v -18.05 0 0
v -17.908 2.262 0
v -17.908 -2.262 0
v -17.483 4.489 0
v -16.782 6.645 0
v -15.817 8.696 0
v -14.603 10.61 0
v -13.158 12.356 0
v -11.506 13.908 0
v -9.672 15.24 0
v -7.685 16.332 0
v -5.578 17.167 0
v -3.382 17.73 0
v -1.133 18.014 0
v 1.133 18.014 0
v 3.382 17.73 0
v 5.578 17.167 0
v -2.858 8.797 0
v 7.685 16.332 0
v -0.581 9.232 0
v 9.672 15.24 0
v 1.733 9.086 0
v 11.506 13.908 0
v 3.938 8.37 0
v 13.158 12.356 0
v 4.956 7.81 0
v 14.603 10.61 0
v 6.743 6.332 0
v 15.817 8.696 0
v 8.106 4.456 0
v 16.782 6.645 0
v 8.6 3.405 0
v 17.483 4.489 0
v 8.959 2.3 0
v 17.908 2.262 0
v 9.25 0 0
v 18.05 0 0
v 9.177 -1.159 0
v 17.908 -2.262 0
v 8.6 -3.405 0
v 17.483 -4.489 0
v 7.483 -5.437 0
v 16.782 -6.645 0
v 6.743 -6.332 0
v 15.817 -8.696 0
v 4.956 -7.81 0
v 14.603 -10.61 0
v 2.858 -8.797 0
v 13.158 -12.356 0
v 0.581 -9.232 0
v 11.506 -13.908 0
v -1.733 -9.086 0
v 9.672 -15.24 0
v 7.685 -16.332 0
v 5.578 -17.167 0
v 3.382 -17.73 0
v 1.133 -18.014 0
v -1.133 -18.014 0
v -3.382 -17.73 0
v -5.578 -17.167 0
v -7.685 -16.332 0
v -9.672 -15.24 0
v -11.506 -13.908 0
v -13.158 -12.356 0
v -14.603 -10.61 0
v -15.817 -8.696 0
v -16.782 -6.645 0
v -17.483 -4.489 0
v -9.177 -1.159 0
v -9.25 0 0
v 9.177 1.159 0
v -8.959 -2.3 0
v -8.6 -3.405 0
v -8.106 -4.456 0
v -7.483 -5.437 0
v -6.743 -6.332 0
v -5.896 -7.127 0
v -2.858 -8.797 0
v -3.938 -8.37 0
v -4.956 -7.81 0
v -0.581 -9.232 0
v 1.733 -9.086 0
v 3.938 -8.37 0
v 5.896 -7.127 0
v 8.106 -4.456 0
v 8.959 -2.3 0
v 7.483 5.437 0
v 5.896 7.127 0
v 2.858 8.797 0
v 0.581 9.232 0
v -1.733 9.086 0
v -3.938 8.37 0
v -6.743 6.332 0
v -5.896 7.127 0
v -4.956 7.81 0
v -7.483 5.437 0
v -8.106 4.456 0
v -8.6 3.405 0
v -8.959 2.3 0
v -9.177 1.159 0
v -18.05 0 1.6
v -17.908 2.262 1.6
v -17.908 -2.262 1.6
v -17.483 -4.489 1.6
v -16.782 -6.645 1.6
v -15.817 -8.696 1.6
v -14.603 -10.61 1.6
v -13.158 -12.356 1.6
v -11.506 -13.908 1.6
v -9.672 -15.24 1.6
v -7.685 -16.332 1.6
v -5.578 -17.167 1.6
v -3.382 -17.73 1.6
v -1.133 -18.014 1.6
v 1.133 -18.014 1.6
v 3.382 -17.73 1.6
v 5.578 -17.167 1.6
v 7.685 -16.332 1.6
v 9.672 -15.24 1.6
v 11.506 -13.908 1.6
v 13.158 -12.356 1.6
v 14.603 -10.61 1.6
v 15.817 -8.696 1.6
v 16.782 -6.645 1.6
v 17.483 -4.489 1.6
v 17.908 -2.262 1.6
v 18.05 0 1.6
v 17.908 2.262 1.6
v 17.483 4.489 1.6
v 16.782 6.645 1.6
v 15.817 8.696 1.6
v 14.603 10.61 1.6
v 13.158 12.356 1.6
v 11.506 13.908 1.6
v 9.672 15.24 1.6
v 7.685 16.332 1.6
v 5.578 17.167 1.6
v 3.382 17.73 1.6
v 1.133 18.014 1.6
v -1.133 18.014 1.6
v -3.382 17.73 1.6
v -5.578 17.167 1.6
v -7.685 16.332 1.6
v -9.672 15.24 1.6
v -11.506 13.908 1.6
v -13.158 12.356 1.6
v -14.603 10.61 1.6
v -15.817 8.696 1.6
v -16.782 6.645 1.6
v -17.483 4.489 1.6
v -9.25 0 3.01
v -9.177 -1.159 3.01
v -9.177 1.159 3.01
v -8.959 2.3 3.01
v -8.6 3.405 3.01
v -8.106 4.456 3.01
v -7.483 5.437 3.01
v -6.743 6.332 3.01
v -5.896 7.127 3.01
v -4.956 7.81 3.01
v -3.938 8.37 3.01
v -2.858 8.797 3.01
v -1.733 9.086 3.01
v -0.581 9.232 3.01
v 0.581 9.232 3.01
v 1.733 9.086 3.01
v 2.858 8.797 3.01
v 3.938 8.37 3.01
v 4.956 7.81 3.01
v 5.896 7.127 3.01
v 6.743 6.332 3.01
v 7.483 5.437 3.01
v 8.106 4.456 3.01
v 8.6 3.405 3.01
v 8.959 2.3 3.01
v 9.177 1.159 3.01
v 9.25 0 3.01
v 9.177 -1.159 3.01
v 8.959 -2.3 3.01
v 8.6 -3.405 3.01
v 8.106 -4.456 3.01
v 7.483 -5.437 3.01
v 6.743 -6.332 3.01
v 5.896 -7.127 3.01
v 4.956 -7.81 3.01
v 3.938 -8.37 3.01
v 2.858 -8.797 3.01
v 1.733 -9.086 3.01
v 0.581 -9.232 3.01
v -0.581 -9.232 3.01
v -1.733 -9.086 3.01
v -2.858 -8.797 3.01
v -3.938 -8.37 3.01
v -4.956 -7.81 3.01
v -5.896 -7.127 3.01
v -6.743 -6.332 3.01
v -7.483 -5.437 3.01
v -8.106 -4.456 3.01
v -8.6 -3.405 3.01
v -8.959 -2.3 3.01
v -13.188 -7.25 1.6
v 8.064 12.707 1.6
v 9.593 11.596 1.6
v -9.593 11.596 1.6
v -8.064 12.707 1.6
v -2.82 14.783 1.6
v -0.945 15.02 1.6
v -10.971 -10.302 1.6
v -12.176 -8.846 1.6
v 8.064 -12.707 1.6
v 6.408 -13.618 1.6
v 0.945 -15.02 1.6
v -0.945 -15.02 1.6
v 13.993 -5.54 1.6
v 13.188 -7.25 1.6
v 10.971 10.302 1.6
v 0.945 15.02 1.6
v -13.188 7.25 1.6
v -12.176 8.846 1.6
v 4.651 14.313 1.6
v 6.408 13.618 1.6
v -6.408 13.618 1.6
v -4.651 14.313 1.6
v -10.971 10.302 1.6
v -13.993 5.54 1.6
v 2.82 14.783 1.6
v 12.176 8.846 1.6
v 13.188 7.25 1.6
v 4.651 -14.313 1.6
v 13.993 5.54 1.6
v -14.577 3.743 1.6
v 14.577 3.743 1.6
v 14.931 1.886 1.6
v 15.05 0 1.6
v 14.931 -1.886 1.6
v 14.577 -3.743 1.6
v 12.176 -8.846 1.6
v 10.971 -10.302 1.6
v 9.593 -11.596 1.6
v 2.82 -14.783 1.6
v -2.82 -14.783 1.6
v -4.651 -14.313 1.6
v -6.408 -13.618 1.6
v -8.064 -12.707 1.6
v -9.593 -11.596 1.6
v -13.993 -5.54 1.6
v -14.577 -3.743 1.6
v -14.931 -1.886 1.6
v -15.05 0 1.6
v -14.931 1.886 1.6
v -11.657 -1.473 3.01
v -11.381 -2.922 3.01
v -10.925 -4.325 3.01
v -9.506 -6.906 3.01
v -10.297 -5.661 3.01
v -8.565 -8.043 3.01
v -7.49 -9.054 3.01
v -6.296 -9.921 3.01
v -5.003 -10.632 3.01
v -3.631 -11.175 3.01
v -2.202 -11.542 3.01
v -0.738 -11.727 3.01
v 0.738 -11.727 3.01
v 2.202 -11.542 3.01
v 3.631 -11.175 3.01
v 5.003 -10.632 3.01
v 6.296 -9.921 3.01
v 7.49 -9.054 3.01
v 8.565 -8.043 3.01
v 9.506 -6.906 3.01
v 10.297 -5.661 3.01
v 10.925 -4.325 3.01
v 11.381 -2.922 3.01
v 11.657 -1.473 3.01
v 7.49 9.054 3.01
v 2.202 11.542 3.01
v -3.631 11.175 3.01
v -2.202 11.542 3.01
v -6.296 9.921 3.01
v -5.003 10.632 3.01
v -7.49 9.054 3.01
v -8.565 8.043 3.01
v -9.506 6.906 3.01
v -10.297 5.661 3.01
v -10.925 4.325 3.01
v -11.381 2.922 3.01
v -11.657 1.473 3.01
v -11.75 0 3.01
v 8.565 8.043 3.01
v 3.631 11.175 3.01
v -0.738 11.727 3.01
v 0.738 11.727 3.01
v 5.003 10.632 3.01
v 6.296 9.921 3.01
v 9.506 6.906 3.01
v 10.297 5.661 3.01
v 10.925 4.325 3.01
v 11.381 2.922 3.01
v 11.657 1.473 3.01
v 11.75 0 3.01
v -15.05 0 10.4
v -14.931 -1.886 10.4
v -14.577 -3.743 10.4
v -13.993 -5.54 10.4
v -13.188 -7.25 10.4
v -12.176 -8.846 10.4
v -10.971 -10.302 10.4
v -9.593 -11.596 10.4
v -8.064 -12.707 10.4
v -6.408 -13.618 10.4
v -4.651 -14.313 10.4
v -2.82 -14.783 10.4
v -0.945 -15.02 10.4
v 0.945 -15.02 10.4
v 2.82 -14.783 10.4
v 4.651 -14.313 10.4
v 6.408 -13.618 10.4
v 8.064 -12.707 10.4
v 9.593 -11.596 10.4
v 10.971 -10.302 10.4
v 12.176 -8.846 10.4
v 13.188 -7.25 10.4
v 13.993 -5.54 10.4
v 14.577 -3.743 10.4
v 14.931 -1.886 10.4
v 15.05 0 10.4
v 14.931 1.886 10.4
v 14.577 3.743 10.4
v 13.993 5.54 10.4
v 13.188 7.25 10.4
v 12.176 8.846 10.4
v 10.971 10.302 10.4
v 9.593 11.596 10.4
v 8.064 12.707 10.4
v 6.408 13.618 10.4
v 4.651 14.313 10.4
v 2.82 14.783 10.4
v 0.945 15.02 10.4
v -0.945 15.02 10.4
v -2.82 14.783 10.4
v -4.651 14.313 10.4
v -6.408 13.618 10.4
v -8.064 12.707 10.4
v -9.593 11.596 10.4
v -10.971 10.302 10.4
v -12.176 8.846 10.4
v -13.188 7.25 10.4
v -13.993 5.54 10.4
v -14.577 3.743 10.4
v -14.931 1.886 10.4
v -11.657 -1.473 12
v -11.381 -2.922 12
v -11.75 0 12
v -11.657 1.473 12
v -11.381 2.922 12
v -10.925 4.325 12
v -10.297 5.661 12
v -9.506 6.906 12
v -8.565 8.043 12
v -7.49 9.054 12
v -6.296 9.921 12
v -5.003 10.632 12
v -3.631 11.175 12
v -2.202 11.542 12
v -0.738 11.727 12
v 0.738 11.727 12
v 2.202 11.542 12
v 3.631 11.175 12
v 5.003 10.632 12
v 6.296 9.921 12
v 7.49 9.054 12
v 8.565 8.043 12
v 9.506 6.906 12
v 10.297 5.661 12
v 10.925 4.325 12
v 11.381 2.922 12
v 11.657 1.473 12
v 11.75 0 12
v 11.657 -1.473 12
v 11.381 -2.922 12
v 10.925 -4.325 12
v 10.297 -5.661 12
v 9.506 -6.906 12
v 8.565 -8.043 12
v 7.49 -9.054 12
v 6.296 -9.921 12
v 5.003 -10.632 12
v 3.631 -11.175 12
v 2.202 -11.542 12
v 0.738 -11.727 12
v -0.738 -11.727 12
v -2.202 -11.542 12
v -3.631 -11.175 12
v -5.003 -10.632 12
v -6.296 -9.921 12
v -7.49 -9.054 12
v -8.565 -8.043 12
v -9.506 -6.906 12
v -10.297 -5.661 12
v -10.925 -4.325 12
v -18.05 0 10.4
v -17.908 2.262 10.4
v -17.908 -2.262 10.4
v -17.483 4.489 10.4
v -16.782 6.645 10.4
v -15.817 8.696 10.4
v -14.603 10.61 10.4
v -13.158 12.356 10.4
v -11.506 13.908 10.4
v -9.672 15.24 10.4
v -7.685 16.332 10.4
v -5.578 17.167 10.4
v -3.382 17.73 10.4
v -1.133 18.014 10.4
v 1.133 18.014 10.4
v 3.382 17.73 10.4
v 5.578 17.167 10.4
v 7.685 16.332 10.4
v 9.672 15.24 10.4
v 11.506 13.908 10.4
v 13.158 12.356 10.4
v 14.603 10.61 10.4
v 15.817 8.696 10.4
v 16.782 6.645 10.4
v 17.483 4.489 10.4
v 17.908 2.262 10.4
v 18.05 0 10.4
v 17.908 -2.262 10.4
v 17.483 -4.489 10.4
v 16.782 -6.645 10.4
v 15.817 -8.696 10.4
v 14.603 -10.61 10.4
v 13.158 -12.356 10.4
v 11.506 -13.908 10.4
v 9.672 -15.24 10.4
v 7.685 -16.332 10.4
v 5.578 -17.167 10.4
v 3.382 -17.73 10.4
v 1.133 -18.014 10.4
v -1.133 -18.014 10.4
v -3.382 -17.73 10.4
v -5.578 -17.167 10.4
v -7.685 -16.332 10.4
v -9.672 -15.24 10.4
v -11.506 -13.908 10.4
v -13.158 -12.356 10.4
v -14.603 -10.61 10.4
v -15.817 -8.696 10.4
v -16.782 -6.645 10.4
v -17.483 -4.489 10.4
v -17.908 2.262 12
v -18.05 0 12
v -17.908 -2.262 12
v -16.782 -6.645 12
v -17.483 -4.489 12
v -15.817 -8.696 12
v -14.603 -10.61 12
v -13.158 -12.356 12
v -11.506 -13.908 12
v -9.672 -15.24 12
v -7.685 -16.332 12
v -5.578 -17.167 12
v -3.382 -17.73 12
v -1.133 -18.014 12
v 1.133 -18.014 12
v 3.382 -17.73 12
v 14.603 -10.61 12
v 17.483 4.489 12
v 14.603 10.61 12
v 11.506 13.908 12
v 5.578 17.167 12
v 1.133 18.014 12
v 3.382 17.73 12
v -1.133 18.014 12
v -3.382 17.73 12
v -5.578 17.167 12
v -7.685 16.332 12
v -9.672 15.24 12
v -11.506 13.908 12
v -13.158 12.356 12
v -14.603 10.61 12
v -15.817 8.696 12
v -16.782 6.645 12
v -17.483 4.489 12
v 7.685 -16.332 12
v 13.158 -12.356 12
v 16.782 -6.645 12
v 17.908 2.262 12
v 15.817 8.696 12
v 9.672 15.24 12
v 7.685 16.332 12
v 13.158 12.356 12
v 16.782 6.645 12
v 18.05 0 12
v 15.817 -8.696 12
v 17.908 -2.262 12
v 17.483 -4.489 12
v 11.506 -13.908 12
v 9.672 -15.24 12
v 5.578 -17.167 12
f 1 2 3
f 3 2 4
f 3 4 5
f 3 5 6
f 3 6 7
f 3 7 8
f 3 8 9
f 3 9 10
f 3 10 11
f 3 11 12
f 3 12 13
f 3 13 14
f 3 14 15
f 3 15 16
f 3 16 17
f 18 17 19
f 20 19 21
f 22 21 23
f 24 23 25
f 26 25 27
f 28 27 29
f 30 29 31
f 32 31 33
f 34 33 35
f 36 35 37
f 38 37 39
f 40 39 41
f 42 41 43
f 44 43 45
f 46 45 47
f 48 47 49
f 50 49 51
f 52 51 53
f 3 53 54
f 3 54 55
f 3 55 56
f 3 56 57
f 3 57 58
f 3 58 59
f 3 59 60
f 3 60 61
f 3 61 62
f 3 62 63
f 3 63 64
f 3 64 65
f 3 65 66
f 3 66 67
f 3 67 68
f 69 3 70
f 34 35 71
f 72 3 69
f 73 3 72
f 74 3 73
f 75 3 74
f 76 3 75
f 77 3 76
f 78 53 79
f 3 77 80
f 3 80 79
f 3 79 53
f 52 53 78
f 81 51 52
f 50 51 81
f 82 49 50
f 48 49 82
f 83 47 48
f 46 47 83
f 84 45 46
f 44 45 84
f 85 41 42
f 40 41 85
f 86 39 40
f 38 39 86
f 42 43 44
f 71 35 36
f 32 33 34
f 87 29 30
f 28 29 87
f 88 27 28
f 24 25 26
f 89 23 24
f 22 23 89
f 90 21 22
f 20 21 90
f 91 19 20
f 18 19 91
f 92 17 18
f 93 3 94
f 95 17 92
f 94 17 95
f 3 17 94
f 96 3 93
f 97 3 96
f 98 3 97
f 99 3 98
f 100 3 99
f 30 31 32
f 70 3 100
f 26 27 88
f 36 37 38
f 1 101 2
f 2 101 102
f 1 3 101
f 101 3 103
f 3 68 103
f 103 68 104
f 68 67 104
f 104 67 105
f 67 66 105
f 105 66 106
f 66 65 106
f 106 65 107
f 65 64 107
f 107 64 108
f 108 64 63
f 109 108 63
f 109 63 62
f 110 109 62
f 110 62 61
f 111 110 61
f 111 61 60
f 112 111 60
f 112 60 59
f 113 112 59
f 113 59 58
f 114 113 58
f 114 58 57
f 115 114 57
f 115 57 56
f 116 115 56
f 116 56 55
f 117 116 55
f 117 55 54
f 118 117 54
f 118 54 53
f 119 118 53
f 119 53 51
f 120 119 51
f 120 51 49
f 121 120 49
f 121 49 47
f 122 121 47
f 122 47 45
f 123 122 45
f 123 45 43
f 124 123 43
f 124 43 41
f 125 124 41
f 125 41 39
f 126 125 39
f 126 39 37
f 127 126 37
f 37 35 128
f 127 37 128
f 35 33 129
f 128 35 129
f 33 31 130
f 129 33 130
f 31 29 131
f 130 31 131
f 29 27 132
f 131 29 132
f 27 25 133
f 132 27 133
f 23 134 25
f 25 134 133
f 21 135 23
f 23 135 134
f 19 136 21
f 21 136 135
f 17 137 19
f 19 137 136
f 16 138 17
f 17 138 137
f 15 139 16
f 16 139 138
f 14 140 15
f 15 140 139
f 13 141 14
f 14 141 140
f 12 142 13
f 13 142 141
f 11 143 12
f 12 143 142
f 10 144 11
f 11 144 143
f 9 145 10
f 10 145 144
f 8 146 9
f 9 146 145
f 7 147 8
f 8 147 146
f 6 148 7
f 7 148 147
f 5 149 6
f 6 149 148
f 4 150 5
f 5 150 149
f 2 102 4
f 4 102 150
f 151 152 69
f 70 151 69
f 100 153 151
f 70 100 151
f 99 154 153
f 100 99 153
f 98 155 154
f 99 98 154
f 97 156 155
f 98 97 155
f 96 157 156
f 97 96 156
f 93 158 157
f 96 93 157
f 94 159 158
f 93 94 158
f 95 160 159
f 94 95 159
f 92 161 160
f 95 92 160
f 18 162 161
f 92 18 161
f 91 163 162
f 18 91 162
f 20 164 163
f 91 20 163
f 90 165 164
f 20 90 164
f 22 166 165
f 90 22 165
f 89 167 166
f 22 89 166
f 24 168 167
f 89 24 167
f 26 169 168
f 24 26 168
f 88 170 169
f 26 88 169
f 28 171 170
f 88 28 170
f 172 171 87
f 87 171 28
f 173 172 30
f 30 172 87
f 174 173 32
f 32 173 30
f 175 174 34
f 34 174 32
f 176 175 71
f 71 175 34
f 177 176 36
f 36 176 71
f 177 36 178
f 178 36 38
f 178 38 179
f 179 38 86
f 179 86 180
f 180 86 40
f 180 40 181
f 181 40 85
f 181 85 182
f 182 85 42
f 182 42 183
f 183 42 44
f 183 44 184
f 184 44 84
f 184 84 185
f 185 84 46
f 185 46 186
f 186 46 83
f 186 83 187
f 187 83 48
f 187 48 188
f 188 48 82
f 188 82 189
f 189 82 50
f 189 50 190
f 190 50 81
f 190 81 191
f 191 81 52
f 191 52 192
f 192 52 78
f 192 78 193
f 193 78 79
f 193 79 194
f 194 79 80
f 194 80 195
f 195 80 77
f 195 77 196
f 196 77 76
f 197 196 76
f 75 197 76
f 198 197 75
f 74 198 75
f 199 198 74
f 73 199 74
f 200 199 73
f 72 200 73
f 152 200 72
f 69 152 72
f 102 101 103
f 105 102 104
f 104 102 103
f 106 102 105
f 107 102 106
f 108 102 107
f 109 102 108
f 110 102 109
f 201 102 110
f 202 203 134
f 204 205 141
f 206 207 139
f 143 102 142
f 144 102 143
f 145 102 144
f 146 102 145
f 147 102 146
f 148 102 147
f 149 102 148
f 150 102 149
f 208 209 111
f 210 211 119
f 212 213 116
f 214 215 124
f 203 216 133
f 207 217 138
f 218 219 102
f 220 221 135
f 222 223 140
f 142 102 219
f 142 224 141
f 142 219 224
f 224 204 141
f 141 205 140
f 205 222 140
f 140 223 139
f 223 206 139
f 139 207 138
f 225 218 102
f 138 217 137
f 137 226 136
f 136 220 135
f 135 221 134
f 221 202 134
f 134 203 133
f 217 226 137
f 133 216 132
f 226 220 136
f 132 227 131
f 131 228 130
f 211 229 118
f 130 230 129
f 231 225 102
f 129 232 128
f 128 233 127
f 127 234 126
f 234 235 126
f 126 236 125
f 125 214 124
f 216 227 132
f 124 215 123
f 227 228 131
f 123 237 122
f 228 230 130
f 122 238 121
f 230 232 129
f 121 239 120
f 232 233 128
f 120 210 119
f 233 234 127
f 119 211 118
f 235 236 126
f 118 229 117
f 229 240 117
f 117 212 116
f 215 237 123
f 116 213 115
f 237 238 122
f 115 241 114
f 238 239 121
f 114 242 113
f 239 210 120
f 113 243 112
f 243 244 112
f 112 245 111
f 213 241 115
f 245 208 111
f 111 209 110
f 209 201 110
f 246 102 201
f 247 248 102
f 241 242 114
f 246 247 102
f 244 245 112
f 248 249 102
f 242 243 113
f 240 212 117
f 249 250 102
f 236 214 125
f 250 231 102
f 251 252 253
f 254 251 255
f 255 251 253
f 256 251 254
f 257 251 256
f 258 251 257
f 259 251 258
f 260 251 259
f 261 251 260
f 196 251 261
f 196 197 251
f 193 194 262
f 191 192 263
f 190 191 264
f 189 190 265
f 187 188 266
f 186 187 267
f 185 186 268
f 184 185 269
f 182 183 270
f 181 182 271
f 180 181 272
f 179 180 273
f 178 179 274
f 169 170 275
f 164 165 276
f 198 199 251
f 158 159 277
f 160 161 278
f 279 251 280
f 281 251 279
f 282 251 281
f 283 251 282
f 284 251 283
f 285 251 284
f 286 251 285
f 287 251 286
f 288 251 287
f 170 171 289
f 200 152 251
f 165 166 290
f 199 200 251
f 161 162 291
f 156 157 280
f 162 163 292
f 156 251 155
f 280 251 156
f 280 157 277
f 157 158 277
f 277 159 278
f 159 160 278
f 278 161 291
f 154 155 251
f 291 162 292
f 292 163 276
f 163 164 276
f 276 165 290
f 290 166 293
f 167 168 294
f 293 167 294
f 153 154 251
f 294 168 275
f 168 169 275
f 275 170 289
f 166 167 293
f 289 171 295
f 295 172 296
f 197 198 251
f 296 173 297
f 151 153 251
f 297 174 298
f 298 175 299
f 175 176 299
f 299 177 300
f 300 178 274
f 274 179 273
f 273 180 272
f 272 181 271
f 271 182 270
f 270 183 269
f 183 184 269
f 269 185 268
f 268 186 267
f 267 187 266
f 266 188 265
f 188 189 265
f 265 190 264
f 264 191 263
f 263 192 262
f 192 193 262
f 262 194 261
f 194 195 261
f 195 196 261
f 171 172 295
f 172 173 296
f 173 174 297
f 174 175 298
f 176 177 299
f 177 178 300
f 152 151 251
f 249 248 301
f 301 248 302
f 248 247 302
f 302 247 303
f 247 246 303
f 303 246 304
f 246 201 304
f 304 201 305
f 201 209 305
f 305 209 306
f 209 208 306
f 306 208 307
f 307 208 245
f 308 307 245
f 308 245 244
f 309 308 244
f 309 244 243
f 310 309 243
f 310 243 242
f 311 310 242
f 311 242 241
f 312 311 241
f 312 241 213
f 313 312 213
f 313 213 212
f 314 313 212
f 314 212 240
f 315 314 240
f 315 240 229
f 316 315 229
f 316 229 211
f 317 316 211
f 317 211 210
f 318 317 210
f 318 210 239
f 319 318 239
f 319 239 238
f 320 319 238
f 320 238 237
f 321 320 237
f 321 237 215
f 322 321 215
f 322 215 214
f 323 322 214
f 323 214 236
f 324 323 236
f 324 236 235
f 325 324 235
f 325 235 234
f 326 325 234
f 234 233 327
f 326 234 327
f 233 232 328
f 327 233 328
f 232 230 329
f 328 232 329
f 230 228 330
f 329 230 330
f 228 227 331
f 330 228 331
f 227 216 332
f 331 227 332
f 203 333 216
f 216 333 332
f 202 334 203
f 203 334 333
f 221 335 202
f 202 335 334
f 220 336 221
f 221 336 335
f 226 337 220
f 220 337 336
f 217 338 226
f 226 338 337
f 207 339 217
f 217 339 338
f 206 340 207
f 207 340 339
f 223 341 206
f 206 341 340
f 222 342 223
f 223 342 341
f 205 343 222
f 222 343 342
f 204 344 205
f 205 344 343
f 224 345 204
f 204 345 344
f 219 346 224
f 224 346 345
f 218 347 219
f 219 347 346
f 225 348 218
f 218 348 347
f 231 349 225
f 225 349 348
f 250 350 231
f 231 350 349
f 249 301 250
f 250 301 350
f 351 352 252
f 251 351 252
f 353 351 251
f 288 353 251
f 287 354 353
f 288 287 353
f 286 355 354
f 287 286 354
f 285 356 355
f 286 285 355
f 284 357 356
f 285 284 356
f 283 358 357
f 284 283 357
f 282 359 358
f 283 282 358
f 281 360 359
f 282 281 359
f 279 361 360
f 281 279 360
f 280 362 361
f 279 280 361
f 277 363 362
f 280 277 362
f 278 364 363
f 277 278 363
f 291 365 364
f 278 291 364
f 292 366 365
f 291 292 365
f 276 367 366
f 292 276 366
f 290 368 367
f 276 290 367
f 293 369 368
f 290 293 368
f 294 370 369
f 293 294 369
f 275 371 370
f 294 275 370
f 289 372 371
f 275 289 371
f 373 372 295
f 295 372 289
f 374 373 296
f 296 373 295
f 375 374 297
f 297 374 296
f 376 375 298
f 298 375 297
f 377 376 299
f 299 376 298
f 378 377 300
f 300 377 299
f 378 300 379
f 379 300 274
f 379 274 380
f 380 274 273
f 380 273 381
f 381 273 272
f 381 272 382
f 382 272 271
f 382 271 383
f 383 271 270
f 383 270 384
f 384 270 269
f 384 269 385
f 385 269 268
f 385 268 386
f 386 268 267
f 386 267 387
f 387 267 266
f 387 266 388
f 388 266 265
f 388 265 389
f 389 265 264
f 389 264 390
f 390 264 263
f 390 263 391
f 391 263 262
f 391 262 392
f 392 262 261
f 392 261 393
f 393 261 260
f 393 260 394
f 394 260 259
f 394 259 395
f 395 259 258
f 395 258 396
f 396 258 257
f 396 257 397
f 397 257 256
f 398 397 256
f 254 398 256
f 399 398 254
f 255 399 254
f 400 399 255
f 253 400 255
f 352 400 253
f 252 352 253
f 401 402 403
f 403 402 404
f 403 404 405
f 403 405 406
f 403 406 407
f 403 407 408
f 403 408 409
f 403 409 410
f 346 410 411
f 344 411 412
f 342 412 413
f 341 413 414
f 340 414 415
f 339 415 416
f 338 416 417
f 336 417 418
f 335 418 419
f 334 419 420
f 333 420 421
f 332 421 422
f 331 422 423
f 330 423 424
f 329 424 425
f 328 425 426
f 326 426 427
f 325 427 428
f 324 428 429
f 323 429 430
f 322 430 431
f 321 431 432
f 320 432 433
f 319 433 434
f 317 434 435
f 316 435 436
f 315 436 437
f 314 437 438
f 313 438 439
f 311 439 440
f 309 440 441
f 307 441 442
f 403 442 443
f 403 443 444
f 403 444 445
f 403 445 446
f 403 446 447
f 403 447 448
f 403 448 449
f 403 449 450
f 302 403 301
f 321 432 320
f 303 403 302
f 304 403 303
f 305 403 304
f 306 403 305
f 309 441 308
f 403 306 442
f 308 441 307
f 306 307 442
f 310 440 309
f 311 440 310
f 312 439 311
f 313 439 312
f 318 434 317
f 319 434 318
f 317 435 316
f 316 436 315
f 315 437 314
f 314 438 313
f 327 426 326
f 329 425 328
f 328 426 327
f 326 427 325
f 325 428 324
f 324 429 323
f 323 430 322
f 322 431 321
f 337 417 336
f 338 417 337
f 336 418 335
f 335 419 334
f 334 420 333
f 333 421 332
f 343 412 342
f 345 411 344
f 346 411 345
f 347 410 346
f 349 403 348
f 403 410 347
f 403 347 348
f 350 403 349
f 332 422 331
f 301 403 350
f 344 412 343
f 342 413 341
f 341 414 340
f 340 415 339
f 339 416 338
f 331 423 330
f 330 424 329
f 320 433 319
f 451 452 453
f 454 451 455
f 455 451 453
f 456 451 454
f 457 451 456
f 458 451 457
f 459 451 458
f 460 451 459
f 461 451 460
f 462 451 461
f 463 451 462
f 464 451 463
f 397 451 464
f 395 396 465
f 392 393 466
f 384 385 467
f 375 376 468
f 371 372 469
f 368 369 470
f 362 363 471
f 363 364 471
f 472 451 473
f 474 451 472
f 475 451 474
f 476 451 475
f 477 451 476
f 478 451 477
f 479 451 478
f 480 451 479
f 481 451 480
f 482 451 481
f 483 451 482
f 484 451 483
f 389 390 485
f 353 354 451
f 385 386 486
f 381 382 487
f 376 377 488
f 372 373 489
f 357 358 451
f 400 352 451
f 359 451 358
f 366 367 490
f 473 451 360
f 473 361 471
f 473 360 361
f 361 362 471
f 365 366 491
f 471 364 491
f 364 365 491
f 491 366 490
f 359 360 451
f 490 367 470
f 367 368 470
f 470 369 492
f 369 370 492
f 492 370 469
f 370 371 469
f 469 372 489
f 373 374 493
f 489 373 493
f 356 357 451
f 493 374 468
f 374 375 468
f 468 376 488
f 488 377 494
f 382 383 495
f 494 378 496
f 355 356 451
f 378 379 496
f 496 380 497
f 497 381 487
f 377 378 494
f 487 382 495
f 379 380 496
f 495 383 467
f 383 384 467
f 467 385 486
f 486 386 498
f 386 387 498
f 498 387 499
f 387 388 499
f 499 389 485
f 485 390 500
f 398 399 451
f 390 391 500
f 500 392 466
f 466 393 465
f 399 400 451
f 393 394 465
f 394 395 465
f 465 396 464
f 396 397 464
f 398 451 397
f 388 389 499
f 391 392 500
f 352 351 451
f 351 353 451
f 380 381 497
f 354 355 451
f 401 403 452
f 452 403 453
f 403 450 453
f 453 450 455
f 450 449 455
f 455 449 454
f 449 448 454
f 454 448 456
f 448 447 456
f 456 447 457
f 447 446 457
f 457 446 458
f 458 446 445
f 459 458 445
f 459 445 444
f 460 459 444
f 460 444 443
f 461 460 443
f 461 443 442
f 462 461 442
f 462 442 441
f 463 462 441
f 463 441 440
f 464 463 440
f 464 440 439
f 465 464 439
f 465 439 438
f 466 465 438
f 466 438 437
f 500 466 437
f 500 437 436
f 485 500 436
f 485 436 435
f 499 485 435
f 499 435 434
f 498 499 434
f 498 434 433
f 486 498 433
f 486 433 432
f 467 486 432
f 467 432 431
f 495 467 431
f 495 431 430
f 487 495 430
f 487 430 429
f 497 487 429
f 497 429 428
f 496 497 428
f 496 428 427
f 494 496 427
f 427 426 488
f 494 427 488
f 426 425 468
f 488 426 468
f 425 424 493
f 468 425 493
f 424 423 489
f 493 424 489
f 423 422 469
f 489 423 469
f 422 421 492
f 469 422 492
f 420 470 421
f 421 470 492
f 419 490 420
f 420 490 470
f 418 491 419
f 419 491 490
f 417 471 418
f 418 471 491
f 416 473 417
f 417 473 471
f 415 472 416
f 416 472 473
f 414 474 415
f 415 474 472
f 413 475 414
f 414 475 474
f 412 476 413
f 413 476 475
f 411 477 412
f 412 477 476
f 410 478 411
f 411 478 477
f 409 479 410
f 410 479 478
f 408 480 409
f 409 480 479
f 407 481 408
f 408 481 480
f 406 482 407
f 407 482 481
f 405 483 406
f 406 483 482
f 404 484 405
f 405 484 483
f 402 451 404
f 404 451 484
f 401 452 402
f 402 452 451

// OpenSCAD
// file: functions.scad
// PRUSA Mendel  
// Functions used in many files
// GNU GPL v2
// Josef Průša
// josefprusa@me.com
// prusadjs.cz
// http://www.reprap.org/wiki/Prusa_Mendel
// http://github.com/prusajr/PrusaMendel

module nut(d,h,horizontal=true){
cornerdiameter =  (d / 2) / cos (180 / 6);
cylinder(h = h, r = cornerdiameter, $fn = 6);
if(horizontal){
for(i = [1:6]){
	rotate([0,0,60*i]) translate([-cornerdiameter-0.2,0,0]) rotate([0,0,-45]) cube(size = [2,2,h]);
}}
}

// By nophead
module polyhole(d,h) {
    n = max(round(2 * d),3);
    rotate([0,0,180])
        cylinder(h = h, r = (d / 2) / cos (180 / n), $fn = n);
}

module roundcorner(diameter){
	difference(){
		cube(size = [diameter,diameter,99], center = false);
		translate(v = [diameter, diameter, 0]) cylinder(h = 100, r=diameter, center=true);
	}
}
// file: metric.scad
// PRUSA Mendel  
// Default metric sizes
// GNU GPL v2
// Josef Průša
// josefprusa@me.com
// prusadjs.cz
// http://www.reprap.org/wiki/Prusa_Mendel
// http://github.com/prusajr/PrusaMendel

// DONT CHANGE THIS FILE! ALTER VALUES IN CONFIGURATION.SCAD INSTEAD

// RODS

threaded_rod_diameter = 8;
threaded_rod_diameter_horizontal = 8;
smooth_bar_diameter = 8;
smooth_bar_diameter_horizontal = 8;

// Nuts and bolts

m8_diameter = 8;
m8_nut_diameter = 14.5;

m4_diameter = 4;
m4_nut_diameter = 7.5;

m3_diameter = 3;
m3_nut_diameter = 5;

// Bushing holder

bushing_core_diameter = smooth_bar_diameter;
bushing_material_thickness = 1;

// Motors

motor_shaft = 5.1;
// file: y-idler-pulley.scad
// f. beachler
// longevity software d.b.a. terawatt industries

bore_size = 22.2 + 0.3;
pulley_dia = 29.1;
pulley_width = 20;	// overall width including flange
flange_height = 3;
flange_width = 1.6;

y_idler_pulley(bore_size, pulley_dia, pulley_width, flange_height, flange_width);

module y_idler_pulley(id = bore_size, od = pulley_dia, w = pulley_width, fh = flange_height, fw = flange_width) {
	difference() {
		union() {
			// pulley wheel
			translate([0, 0, fw - 0.01]) cylinder(r = od / 2, h = w - fw * 2 + 0.02, $fn = 50);
			// flanges
			cylinder(r = od / 2 + fh, h = fw, $fn = 50);
			translate([0, 0, w - fw]) cylinder(r = od / 2 + fh, h = fw, $fn = 50);
		}
		// bore - 2mm
		translate([0, 0, -0.01]) cylinder(r = id / 2 - 2, h = w + 0.02, $fn = 50);
		// 608 bore
		translate([0, 0, -0.02]) cylinder(r = id / 2, h = 5, $fn = 50);
		translate([0, 0, w - 5 + 0.01]) cylinder(r = id / 2, h = 5, $fn = 50);
	}
}
// file: configuration.scad
// PRUSA Mendel  
// Configuration file
// GNU GPL v2
// Josef Průša
// josefprusa@me.com
// prusadjs.cz
// http://www.reprap.org/wiki/Prusa_Mendel
// http://github.com/prusajr/PrusaMendel

// PLEASE SELECT ONE OF THE CONFIGURATIONS BELOW
// BY UN-COMMENTING IT

// Uncomment for metric settings
// METRIC METRIC METRIC METRIC METRIC METRIC METRIC METRIC 

include <metric.scad>;

// Uncomment for imperial settings
// IMPERIAL IMPERIAL IMPERIAL IMPERIAL IMPERIAL IMPERIAL IMPERIAL 

//include <sae.scad>;

//thin_wall = 3;
// LM8UU
//linear = false;

// override settings by customizing below
// CUSTOM CUSTOM CUSTOM CUSTOM CUSTOM CUSTOM CUSTOM CUSTOM CUSTOM

threaded_rod_diameter = 8.2;
threaded_rod_diameter_horizontal = 8.2;
smooth_bar_diameter = 8.3;
smooth_bar_diameter_horizontal = 8.3;

// Nuts and bolts

m8_diameter = 8.3;
m8_nut_diameter = 15;

m4_diameter = 4.2;
m4_nut_diameter = 9;

m3_diameter = 3.3;
m3_nut_diameter = 5.8;

///counted stuff
m3_nut_diameter_bigger = ((m3_nut_diameter  / 2) / cos (180 / 6))*2;

// functions 
include <functions.scad>
// main file
// f. beachler
// longevity software d.b.a. terawatt industries

include <configuration.scad>;
use <y-idler-pulley.scad>;

bore_size = 22.2 + 0.3;
pulley_dia = 30.1;
pulley_width = 12;	// overall width including flange
flange_height = 3;
flange_width = 1.6;

z_idler_pulley(bore_size, pulley_dia, pulley_width, flange_height, flange_width);
//translate([40, 0, 0]) m4_608_bushing();

module z_idler_pulley(id = bore_size, od = pulley_dia, w = pulley_width, fh = flange_height, fw = flange_width) {
	difference() {
		union() {
			// pulley wheel
			translate([0, 0, fw - 0.01]) cylinder(r = od / 2, h = w - fw * 2 + 0.02, $fn = 50);
			// flanges
			cylinder(r = od / 2 + fh, h = fw, $fn = 50);
			translate([0, 0, w - fw]) cylinder(r = od / 2 + fh, h = fw, $fn = 50);
		}
		// bore - 1mm
		translate([0, 0, -0.01]) cylinder(r = id / 2 - 2, h = w + 0.02, $fn = 50);
		// 608 bore
//		translate([0, 0, -0.02]) cylinder(r = id / 2, h = 5, $fn = 50);
		translate([0, 0, w - 9 + 0.01]) cylinder(r = id / 2 + 0.5, h = 10	, $fn = 50);
	}
}

module m4_608_bushing() {
	difference() {
		union() {
			cylinder(r = 30 / 2 + 3 / 2, h = 2.5, $fn = 50);
			translate([0, 0, 2.5 - 0.01]) cylinder(r = m8_diameter / 2 + 2.5, h = 2, $fn = 50);
			translate([0, 0, 2.5 - 0.01]) cylinder(r = m8_diameter / 2 - 0.25 , h = 9 + 2.5 + 2, $fn = 50);
		}
		translate([0, 0, -0.01]) cylinder(r = 4 / 2 + 0.2, h = 30, $fn = 50);
	}
}
